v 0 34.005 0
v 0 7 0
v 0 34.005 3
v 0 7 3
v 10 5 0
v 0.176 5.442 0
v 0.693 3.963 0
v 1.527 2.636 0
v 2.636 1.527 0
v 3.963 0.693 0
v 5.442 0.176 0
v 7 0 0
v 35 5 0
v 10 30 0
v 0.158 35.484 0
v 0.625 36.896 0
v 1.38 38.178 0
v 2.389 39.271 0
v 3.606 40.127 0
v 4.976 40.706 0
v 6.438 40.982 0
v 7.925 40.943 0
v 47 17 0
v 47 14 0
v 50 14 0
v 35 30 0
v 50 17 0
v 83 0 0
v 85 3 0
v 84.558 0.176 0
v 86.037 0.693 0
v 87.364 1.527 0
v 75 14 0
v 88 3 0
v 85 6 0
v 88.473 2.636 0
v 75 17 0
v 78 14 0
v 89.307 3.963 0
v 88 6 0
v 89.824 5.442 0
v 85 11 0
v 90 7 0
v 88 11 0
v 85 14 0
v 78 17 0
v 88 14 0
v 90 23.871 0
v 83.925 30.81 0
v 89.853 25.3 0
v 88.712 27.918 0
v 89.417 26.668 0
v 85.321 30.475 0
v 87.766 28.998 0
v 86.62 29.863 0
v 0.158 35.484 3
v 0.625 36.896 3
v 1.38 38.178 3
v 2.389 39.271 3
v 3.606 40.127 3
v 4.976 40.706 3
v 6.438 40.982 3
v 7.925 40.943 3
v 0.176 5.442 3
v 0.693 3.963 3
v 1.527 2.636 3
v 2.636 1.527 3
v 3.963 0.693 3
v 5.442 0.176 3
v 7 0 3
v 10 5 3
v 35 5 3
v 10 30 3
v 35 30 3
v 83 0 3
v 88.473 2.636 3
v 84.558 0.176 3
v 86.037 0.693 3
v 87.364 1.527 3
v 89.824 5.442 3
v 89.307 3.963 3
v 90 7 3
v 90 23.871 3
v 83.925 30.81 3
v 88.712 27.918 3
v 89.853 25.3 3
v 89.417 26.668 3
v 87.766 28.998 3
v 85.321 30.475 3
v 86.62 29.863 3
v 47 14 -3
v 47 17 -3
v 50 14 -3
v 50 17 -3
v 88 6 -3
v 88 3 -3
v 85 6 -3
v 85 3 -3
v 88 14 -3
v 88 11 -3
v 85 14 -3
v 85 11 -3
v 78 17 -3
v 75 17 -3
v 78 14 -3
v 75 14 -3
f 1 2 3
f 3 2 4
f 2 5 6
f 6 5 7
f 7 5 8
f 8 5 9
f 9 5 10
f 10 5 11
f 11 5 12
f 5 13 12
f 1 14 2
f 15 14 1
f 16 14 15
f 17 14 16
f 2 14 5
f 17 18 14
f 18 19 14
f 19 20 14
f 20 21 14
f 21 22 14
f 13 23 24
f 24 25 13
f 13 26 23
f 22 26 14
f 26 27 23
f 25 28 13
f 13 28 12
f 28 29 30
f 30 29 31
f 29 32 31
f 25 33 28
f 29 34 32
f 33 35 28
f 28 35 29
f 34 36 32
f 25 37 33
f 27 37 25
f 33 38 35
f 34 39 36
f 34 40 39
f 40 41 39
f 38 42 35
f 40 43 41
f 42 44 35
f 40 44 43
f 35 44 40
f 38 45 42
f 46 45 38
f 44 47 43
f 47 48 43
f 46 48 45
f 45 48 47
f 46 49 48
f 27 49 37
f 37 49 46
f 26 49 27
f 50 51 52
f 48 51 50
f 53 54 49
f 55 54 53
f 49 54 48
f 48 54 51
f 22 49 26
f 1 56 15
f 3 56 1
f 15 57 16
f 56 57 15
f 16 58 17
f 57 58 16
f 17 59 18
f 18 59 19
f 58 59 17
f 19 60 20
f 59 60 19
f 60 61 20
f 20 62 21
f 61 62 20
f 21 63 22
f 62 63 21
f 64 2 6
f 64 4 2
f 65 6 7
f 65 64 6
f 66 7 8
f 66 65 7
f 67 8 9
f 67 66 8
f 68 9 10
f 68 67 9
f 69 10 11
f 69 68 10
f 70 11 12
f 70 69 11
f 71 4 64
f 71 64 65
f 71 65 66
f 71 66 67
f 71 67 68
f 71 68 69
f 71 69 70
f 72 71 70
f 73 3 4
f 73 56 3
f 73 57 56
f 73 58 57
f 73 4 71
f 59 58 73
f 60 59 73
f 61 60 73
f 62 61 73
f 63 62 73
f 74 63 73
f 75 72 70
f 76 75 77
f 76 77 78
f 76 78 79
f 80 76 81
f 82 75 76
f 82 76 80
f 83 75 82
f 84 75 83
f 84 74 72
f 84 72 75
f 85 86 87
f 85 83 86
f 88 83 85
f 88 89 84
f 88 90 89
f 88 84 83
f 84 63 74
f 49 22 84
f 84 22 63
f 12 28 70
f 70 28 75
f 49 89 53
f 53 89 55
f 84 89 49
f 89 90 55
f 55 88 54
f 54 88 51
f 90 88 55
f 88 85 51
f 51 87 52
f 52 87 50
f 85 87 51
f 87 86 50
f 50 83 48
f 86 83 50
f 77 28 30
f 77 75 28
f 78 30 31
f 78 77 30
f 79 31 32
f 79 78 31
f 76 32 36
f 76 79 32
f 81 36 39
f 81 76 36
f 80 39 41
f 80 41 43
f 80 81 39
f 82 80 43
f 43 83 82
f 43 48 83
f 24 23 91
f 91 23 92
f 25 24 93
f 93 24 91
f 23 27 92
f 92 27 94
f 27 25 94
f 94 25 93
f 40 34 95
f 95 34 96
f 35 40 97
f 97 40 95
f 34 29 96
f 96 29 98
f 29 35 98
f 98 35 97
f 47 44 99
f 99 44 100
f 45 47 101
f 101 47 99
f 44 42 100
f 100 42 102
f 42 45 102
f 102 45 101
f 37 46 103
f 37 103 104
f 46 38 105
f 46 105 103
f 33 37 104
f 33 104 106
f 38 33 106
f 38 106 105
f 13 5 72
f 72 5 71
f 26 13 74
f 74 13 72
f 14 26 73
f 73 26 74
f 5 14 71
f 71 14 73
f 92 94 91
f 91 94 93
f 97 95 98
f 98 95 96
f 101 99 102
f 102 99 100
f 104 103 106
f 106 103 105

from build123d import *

# Parameters (mm, degrees)
PAD_DEPTH    = 3
SKETCH001_W  = 3
SKETCH001_H  = 3
PAD001_DEPTH = 3
FILLET_R     = 7
SKETCH002_W  = 25
SKETCH002_H  = 25
POCKET_DEPTH = 5


with BuildPart() as part:
    # Sketch → Pad (new body)
    with BuildSketch(Plane.XY):
        Polygon((0, 42), (0, 0), (90, 0), (90, 30), align=None)
    extrude(amount=PAD_DEPTH)

    # Sketch001 (on Face5 of Pad) → Pad001 (join)
    with BuildSketch(Plane(origin=(0, 0, 0), x_dir=(1, 0, 0), z_dir=(0, 0, -1))):
        with Locations((86.5, -4.5)):
            Rectangle(SKETCH001_W, SKETCH001_H)
        with Locations((86.5, -12.5)):
            Rectangle(SKETCH001_W, SKETCH001_H)
        with Locations((76.5, -15.5)):
            Rectangle(SKETCH001_W, SKETCH001_H)
        with Locations((48.5, -15.5)):
            Rectangle(SKETCH001_W, SKETCH001_H)
    extrude(amount=PAD001_DEPTH)

    # Fillet
    fillet_edges = [part.edges().sort_by_distance(p)[0] for p in [
        (0, 42, 1.5),
        (0, 0, 1.5),
        (90, 0, 1.5),
        (90, 30, 1.5),
    ]]
    fillet(fillet_edges, radius=FILLET_R)

    # Sketch002 (on Face2 of Fillet) → Pocket (cut)
    with BuildSketch(Plane(origin=(0, 0, 0), x_dir=(1, 0, 0), z_dir=(0, 0, -1))):
        with Locations((22.5, -17.5)):
            Rectangle(SKETCH002_W, SKETCH002_H)
    extrude(amount=-POCKET_DEPTH, mode=Mode.SUBTRACT)


solid = part.part
